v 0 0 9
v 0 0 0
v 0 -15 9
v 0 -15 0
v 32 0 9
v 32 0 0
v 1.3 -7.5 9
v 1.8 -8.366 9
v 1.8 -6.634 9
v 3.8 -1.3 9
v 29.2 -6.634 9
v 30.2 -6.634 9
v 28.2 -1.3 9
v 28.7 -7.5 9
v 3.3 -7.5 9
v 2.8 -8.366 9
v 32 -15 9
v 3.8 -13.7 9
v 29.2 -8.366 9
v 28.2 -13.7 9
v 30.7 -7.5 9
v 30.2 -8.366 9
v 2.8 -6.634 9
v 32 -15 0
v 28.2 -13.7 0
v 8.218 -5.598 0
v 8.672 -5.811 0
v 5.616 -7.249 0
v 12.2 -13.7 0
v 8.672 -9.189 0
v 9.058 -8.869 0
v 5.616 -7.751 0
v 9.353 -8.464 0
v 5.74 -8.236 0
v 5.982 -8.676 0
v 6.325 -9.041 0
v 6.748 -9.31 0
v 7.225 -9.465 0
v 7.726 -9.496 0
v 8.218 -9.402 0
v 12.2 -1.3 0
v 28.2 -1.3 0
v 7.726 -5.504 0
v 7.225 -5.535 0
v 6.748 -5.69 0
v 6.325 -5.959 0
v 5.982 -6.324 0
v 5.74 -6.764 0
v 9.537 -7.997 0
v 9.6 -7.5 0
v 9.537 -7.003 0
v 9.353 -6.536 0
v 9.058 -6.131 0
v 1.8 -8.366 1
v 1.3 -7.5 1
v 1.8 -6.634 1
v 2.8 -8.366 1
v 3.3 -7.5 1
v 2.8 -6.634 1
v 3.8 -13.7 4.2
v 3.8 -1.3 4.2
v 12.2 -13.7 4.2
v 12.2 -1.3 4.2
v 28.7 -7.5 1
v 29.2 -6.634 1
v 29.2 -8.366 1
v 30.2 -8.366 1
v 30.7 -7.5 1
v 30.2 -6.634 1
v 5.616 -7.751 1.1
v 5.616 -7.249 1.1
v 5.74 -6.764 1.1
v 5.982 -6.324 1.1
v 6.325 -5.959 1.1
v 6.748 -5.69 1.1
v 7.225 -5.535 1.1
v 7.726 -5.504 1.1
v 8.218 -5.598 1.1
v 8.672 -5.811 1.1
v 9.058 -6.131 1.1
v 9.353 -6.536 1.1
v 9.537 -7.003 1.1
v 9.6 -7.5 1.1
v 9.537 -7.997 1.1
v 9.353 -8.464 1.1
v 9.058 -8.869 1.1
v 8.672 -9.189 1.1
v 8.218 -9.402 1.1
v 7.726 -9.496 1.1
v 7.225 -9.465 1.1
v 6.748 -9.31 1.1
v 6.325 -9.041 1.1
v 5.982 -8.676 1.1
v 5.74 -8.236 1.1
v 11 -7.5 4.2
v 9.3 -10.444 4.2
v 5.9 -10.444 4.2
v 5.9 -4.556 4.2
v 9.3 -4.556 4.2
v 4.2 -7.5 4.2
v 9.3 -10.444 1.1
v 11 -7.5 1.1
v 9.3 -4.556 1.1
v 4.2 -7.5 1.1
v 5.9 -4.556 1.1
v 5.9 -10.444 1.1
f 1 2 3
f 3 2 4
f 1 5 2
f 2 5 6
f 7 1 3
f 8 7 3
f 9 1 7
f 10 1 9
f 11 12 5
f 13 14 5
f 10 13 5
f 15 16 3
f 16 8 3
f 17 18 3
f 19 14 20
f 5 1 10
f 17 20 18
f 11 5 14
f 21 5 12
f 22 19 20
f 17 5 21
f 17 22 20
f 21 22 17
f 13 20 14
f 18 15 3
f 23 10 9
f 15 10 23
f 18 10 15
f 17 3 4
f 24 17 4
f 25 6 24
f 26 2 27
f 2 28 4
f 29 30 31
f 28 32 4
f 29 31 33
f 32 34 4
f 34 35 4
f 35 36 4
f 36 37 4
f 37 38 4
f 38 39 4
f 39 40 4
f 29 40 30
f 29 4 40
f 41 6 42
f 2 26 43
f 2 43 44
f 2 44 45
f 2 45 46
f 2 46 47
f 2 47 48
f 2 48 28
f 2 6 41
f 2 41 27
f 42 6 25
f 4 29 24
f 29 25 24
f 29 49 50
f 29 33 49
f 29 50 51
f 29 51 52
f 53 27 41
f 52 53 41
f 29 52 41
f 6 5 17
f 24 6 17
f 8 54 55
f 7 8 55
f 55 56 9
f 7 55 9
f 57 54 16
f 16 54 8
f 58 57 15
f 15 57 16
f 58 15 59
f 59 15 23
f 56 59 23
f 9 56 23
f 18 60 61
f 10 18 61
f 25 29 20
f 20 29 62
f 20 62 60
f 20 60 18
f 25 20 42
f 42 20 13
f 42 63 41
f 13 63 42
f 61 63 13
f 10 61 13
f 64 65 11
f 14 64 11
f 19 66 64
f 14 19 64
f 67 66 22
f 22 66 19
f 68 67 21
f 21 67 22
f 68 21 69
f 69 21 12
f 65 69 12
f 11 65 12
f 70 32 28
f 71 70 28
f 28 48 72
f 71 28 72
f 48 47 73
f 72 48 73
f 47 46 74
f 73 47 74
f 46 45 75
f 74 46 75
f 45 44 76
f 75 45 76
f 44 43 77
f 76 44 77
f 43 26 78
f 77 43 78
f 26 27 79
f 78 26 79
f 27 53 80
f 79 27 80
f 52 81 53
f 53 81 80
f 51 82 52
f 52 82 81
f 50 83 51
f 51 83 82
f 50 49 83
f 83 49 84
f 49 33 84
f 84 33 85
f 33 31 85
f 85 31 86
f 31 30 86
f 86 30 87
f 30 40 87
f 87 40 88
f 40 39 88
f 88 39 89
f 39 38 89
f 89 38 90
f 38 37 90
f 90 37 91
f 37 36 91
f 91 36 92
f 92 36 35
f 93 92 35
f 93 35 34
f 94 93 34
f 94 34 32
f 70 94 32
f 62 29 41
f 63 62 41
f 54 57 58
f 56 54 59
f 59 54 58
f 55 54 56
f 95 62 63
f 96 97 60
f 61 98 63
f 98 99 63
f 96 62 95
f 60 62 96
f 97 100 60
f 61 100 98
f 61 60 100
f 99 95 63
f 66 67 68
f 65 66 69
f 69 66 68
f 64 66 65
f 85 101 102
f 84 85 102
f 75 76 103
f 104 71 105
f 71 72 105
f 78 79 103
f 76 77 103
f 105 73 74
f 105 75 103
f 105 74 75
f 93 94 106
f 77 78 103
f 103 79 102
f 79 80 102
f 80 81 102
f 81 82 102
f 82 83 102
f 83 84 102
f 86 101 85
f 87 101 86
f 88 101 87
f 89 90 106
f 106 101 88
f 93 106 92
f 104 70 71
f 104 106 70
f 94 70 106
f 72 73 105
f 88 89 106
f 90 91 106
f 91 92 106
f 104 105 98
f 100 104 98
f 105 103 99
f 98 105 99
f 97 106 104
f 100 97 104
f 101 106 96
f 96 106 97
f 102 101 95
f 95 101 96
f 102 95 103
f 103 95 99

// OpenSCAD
//ROBOTIC CLAW
//For mini servo EMax ES08A
//JGH 16/12/2013

translate([0,0,9])	//orient for printing
rotate([180,0,0])

difference(){
	cube ([32, 15, 9]);			//Main box
	
	translate([12.2, 1.3, 0])	//Area for round parts
	color([1,1,1])
	cube ([16, 12.4, 9]);
	
	translate([3.8, 1.3, 0])		//Area fo square section of servo
	color([0,0,1])
	cube ([24.4, 12.4, 4.8]);

	translate([7.6, 7.5, 3.8])		//Hole for 3M nut
	cylinder(r=3.4, h=4.1, $fn=6);

	translate([7.6, 7.5, 3.8])		//Hole for 3M screw
	cylinder(r=2, h=10, $fn=25);

	translate([2.3, 7.5, 0])			//Holes for underside M2 screws
	cylinder(r=1, h=8, $fn=6);

	translate([29.7, 7.5, 0])
	cylinder(r=1, h=8, $fn=6);
}
